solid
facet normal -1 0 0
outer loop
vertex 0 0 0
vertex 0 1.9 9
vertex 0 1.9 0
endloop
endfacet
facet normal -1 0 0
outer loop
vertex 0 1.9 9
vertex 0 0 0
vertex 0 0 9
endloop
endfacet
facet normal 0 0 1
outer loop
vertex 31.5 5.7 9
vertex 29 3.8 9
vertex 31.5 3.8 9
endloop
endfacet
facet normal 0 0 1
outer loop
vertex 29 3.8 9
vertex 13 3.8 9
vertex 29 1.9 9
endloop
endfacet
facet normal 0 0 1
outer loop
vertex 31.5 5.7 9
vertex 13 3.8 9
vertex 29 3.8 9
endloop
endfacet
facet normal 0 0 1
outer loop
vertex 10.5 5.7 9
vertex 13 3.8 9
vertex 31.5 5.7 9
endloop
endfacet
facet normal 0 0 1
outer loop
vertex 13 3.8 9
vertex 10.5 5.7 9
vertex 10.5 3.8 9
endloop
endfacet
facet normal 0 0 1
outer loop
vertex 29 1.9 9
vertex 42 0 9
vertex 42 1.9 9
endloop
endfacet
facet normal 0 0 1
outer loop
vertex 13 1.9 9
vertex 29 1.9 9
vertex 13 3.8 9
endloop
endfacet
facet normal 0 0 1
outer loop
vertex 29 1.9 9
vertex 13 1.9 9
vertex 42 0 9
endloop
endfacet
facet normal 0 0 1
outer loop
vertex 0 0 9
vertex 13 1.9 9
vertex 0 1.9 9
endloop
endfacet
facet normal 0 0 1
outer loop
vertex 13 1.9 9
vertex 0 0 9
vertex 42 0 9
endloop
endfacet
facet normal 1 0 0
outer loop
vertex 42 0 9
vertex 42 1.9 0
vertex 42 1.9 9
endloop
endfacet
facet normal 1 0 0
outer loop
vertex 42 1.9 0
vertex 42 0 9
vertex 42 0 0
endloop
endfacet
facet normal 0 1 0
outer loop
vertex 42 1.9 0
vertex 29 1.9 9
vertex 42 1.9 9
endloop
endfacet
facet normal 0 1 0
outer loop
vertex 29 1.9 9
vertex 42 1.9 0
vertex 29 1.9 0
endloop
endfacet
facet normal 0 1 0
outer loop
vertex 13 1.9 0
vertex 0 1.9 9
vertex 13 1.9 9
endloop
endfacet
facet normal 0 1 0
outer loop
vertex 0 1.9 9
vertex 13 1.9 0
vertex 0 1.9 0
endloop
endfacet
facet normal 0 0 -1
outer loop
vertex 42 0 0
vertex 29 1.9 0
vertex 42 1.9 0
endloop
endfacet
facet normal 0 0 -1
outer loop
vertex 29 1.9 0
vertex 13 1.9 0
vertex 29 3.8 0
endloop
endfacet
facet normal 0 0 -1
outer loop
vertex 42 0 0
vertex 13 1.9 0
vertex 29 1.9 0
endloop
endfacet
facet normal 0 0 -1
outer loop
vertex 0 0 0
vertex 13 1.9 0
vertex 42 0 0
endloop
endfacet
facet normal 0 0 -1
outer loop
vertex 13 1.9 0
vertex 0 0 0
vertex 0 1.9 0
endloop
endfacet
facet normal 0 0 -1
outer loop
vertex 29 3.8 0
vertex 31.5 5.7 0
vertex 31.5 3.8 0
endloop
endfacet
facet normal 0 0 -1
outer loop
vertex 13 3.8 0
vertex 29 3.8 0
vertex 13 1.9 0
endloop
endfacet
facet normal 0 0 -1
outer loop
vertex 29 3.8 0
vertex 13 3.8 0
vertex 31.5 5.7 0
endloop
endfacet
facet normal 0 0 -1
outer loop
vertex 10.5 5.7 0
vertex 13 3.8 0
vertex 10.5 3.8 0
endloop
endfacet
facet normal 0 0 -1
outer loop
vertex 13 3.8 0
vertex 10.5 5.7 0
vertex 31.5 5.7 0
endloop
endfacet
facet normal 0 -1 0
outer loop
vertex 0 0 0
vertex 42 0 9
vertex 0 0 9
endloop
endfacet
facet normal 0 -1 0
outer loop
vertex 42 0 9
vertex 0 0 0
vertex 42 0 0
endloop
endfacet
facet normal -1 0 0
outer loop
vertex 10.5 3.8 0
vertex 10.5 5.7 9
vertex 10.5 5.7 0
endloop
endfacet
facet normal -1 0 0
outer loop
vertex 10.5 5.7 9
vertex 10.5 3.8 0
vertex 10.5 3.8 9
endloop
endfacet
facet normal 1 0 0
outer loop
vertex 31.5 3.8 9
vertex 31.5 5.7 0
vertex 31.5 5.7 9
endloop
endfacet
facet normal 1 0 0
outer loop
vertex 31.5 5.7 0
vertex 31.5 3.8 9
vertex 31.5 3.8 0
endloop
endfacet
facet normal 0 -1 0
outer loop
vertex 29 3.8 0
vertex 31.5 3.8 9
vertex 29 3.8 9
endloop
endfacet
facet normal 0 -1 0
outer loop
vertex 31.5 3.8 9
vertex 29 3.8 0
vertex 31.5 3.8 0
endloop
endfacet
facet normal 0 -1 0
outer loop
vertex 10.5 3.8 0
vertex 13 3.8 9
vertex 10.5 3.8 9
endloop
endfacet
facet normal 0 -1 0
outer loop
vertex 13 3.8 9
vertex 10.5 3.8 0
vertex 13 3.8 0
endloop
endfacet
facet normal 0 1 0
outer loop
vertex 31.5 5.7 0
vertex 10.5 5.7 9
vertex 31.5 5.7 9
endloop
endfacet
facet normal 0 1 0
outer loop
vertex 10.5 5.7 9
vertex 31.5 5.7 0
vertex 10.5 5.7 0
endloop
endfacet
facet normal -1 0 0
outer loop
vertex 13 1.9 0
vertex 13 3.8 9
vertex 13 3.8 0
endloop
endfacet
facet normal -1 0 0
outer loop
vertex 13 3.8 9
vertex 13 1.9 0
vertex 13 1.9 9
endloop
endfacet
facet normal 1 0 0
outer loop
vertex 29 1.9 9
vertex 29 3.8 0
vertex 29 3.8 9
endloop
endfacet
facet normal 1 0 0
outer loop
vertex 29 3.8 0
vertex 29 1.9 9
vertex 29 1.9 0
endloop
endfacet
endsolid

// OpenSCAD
union(){
    cube([42.0,1.9,9.0]);
    translate([(42.0-21.0)/2.0,2.0*1.9,0.0])cube([21.0,1.9,9.0]);
    translate([(42.0-16.0)/2.0,0.5*1.9,0.0])cube([16.0,1.7*1.9,9.0]);
}
